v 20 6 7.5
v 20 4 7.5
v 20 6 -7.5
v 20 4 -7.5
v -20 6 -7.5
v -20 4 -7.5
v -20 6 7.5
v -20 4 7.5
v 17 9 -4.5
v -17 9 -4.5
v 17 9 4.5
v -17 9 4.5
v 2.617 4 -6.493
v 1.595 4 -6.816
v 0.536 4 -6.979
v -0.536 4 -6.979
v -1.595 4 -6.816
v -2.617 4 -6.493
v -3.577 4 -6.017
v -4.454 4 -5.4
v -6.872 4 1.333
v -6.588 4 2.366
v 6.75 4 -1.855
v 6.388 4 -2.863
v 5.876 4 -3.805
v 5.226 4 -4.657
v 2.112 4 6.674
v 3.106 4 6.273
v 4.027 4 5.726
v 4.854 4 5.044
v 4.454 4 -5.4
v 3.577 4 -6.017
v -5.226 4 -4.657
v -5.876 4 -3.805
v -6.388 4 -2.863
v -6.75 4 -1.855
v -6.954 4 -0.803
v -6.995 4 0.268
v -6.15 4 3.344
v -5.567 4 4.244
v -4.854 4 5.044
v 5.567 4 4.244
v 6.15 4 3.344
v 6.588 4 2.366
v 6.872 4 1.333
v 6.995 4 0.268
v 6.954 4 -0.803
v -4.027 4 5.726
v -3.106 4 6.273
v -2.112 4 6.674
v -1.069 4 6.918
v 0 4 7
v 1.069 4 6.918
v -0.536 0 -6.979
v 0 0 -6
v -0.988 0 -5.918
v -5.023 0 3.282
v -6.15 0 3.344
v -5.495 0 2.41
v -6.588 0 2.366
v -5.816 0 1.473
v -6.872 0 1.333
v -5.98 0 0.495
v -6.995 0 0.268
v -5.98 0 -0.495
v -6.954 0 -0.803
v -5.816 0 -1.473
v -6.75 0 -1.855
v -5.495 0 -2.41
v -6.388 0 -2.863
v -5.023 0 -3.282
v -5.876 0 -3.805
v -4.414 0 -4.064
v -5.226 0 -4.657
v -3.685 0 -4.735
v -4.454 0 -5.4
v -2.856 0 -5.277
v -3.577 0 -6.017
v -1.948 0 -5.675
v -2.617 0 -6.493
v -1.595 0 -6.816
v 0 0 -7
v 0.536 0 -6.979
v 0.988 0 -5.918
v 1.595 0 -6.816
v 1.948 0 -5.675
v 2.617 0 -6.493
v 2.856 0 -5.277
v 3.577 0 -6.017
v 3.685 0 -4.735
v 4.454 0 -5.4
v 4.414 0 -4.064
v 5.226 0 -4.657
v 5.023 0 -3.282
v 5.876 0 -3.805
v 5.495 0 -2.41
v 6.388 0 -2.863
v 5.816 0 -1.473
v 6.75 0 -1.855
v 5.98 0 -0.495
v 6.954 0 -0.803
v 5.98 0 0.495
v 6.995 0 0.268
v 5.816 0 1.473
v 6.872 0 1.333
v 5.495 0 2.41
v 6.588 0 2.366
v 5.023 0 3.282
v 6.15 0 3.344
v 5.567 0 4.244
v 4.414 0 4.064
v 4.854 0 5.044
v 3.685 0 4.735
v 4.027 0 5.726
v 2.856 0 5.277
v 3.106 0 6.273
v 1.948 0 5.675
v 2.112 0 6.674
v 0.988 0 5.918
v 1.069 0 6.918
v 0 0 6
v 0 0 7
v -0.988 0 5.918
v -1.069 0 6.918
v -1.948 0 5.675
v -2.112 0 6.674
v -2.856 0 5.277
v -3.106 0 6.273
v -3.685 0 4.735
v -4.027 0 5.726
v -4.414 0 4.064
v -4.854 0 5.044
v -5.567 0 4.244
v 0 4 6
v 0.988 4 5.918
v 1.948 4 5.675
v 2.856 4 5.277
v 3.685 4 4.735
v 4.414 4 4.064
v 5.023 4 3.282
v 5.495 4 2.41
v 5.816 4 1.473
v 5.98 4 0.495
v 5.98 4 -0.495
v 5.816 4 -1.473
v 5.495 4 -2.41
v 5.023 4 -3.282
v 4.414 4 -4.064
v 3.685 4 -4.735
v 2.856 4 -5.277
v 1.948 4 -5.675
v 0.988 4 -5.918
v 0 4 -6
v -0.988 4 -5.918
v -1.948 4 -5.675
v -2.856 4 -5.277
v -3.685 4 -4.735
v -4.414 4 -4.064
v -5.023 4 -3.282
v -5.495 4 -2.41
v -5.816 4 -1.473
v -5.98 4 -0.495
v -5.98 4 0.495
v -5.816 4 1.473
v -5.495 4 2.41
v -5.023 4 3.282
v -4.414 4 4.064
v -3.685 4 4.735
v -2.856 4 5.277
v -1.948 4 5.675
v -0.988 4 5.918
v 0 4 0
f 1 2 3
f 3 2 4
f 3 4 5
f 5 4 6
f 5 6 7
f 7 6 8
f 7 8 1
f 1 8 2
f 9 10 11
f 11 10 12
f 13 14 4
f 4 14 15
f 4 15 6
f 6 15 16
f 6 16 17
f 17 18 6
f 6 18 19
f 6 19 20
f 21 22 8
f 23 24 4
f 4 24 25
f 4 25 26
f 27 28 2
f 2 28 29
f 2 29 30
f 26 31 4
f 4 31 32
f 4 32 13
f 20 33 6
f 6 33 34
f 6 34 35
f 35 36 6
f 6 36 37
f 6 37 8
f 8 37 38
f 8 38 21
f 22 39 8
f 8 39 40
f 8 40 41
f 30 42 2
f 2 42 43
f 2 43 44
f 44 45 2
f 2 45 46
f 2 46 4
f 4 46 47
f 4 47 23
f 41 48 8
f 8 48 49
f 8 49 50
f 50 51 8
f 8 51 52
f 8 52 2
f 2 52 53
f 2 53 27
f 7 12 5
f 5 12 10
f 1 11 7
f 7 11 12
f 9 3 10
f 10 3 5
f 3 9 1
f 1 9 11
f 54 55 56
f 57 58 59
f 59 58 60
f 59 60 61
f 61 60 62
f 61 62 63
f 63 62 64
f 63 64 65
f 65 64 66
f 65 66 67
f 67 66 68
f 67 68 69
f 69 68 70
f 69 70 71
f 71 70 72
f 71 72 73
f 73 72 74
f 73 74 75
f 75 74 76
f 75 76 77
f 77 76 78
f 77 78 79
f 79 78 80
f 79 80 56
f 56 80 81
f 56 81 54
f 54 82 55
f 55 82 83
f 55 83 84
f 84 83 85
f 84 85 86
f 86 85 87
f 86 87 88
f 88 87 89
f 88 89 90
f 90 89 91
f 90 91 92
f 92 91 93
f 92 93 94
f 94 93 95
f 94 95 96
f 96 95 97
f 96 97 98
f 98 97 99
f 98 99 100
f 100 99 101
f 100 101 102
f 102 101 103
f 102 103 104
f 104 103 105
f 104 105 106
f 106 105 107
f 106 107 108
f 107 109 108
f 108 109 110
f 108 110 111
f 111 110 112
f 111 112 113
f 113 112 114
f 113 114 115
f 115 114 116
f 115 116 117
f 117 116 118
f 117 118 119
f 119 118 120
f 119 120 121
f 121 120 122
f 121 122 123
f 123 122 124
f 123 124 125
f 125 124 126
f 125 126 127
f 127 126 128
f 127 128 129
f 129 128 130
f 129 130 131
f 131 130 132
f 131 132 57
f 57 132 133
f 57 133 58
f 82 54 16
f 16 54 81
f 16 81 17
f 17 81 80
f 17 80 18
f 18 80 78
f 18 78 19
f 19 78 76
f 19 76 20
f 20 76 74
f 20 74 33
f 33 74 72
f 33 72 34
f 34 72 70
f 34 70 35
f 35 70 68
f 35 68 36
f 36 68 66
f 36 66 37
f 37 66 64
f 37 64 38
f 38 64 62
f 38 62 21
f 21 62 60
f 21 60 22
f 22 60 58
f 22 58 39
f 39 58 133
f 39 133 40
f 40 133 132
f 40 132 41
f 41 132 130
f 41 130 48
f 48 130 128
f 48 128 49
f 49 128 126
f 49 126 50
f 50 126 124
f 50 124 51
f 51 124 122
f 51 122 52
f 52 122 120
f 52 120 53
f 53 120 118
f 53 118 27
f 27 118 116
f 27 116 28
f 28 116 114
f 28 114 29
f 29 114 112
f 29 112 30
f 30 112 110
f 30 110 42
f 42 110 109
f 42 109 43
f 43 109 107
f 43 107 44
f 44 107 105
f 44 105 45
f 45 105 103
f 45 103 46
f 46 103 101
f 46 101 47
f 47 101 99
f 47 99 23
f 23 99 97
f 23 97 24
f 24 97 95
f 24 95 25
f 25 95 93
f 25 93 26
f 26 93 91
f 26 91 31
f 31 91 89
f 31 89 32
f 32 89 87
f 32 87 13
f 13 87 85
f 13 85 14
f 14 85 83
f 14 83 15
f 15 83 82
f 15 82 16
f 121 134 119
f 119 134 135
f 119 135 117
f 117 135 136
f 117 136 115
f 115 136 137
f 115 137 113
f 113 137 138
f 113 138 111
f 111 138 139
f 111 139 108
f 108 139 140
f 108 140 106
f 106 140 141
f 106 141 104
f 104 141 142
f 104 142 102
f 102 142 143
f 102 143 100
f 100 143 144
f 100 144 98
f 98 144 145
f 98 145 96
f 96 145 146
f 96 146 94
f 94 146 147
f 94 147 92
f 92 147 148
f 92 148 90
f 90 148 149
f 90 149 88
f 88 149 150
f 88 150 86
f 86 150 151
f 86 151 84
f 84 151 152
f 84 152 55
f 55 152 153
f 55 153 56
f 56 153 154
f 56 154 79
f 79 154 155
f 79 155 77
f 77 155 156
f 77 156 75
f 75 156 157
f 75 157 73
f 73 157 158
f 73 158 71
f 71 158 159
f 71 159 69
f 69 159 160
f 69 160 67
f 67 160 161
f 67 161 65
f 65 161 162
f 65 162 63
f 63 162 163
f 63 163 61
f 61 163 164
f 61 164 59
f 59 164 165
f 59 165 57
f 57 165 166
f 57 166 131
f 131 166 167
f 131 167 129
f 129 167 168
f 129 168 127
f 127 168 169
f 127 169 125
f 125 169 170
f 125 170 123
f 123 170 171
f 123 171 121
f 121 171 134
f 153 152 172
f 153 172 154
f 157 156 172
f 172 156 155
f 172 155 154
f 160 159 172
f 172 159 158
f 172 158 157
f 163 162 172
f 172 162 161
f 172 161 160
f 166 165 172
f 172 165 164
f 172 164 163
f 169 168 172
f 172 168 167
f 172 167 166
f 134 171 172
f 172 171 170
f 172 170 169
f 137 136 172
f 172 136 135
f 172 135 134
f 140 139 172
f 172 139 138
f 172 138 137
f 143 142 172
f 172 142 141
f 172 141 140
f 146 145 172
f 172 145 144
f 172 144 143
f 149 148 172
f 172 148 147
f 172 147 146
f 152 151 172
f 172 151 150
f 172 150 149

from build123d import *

# Parameters (mm, degrees)
SKETCH2_W           = 40
SKETCH2_H           = 15
BOSS_EXTRUDE2_DEPTH = 5
CHAMFER1_SIZE       = 3
SKETCH5_R           = 7
SKETCH5_R_2         = 6
BOSS_EXTRUDE4_DEPTH = 4


with BuildPart() as part:
    # Sketch2 → Boss-Extrude2 (new body)
    with BuildSketch(Plane(origin=(0, 4, 0), x_dir=(1, 0, 0), z_dir=(0, 1, 0))):
        Rectangle(SKETCH2_W, SKETCH2_H)
    extrude(amount=BOSS_EXTRUDE2_DEPTH)

    # Chamfer1
    chamfer1_edges = [part.edges().sort_by_distance(p)[0] for p in [
        (-20, 9, 0),
        (0, 9, 7.5),
        (20, 9, 0),
        (0, 9, -7.5),
    ]]
    chamfer(chamfer1_edges, length=CHAMFER1_SIZE)

    # Sketch5 → Boss-Extrude4 (add)
    with BuildSketch(Plane(origin=(0, 4, 0), x_dir=(-1, 0, 0), z_dir=(0, -1, 0))):
        with Locations(Location((0, 0, 0), (0, 0, 270))):
            Circle(SKETCH5_R)
        with Locations(Location((0, 0, 0), (0, 0, 90))):
            Circle(SKETCH5_R_2, mode=Mode.SUBTRACT)
    extrude(amount=BOSS_EXTRUDE4_DEPTH)


solid = part.part
